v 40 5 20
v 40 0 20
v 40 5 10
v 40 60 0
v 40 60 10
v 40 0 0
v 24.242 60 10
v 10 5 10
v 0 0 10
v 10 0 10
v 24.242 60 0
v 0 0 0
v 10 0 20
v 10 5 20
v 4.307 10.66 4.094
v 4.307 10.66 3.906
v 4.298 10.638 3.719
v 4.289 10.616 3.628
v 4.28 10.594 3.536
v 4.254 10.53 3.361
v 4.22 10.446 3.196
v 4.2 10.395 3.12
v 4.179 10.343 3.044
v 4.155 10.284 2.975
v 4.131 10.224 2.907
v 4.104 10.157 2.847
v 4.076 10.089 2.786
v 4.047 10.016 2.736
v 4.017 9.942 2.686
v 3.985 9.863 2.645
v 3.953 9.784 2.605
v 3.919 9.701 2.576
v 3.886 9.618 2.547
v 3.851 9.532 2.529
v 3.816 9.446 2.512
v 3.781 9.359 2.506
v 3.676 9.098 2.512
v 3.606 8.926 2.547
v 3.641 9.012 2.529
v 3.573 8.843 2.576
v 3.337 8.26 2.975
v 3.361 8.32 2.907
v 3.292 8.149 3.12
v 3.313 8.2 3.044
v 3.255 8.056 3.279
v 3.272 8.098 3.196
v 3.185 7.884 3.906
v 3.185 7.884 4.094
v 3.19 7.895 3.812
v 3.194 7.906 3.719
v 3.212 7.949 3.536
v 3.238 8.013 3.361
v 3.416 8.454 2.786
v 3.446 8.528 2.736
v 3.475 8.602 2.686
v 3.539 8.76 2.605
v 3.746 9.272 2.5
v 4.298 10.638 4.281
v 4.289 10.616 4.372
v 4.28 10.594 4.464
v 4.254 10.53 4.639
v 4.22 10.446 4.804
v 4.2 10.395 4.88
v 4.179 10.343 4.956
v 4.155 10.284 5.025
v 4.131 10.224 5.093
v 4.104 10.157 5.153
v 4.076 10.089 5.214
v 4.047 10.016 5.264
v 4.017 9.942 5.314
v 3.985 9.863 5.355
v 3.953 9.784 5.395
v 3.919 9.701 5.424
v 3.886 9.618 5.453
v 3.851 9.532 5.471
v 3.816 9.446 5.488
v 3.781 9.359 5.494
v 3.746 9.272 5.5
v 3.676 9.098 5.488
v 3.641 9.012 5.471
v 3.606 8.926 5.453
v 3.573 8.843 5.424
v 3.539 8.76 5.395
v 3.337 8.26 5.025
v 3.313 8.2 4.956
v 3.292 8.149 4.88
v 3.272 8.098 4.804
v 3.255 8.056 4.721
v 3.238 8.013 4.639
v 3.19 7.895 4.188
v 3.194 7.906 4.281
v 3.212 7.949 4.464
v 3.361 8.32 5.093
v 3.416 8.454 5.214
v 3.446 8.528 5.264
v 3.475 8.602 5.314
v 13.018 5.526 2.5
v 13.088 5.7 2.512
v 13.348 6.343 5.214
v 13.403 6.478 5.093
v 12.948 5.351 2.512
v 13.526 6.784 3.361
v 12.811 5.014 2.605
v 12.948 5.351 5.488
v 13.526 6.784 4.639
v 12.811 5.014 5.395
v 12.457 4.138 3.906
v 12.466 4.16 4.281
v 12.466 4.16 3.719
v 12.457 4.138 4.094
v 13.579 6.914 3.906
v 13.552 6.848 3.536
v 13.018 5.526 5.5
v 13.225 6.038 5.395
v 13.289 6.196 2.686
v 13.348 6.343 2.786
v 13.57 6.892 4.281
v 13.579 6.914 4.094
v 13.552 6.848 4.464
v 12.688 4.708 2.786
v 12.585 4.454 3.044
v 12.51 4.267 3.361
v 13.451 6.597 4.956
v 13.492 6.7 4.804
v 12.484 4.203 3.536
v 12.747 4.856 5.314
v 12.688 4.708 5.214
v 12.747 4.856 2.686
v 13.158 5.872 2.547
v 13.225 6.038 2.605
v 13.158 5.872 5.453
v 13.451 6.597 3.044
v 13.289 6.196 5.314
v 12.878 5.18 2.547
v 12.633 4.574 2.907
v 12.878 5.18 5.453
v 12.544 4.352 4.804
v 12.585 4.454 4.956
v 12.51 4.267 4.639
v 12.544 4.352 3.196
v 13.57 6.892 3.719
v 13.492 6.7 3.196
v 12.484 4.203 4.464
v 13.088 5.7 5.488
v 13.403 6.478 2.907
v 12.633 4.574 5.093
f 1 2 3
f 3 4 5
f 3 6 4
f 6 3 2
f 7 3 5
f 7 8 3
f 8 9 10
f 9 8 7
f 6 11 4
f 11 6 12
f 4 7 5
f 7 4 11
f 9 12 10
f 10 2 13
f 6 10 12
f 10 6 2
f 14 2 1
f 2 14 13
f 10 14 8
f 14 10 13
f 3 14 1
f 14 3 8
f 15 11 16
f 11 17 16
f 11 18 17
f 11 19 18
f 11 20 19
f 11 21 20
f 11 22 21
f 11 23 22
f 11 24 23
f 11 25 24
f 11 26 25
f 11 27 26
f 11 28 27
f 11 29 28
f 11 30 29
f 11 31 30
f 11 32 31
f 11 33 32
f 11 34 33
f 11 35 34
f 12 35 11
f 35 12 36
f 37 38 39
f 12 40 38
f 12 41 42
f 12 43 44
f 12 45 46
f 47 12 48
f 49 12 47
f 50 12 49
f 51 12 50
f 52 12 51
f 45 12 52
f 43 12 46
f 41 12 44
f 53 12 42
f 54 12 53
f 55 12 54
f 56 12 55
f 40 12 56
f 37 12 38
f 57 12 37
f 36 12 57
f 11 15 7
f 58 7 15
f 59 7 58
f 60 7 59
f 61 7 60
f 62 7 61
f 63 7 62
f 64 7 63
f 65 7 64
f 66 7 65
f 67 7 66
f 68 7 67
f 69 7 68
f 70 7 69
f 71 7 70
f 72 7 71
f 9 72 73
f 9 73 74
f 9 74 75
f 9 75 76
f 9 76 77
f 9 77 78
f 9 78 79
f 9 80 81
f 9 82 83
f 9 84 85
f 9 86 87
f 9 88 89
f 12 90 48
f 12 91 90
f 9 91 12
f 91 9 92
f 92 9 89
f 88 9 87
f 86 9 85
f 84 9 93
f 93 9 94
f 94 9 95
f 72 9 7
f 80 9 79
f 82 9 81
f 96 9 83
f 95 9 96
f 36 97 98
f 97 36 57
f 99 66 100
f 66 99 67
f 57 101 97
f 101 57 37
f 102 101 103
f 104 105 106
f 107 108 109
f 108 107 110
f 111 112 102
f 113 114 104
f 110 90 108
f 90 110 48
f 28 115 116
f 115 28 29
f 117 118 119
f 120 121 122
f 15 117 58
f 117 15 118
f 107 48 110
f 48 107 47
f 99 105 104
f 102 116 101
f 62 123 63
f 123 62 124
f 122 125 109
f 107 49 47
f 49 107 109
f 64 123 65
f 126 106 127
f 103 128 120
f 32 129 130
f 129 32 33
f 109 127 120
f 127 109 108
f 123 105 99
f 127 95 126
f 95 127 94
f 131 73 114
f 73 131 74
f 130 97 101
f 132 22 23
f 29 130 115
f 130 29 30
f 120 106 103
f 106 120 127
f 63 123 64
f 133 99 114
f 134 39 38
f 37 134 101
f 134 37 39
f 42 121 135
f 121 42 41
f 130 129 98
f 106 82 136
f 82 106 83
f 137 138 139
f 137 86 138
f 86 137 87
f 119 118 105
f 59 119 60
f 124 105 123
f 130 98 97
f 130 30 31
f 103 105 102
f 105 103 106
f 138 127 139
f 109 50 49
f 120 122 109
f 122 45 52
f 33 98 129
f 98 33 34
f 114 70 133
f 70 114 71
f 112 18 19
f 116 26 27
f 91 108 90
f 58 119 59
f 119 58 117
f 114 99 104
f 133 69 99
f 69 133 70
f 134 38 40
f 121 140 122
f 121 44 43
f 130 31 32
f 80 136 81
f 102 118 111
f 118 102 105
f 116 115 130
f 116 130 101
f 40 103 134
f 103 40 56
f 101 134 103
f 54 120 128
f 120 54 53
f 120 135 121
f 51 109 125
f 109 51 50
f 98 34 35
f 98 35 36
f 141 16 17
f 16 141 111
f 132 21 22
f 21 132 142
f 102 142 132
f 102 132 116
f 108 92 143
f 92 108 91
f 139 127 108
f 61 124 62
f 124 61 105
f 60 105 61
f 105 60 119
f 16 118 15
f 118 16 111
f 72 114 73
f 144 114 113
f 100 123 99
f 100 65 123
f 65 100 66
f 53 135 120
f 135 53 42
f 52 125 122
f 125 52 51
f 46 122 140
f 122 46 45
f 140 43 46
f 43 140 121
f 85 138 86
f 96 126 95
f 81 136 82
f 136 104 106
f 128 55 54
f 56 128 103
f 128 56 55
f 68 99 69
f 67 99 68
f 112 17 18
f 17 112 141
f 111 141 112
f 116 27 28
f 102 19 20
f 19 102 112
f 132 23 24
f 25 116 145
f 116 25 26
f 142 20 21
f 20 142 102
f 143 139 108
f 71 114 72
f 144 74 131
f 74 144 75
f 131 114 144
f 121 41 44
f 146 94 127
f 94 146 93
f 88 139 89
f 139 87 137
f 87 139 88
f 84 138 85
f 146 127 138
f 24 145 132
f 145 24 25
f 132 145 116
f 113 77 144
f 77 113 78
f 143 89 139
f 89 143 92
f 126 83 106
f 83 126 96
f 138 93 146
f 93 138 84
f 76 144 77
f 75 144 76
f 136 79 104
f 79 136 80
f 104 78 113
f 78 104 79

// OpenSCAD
$fn=50;
difference() {
    union() {
        cube([40,60,10]);
        translate([10,0,0])
            cube([30,5,20]);
    }
    rotate([0,0,68]) cube([100,100,10]);
    rotate([0,0,90+68])
        translate([-10,-10,4])
            rotate([0,90,0])
                #cylinder(20,d=3);
}
